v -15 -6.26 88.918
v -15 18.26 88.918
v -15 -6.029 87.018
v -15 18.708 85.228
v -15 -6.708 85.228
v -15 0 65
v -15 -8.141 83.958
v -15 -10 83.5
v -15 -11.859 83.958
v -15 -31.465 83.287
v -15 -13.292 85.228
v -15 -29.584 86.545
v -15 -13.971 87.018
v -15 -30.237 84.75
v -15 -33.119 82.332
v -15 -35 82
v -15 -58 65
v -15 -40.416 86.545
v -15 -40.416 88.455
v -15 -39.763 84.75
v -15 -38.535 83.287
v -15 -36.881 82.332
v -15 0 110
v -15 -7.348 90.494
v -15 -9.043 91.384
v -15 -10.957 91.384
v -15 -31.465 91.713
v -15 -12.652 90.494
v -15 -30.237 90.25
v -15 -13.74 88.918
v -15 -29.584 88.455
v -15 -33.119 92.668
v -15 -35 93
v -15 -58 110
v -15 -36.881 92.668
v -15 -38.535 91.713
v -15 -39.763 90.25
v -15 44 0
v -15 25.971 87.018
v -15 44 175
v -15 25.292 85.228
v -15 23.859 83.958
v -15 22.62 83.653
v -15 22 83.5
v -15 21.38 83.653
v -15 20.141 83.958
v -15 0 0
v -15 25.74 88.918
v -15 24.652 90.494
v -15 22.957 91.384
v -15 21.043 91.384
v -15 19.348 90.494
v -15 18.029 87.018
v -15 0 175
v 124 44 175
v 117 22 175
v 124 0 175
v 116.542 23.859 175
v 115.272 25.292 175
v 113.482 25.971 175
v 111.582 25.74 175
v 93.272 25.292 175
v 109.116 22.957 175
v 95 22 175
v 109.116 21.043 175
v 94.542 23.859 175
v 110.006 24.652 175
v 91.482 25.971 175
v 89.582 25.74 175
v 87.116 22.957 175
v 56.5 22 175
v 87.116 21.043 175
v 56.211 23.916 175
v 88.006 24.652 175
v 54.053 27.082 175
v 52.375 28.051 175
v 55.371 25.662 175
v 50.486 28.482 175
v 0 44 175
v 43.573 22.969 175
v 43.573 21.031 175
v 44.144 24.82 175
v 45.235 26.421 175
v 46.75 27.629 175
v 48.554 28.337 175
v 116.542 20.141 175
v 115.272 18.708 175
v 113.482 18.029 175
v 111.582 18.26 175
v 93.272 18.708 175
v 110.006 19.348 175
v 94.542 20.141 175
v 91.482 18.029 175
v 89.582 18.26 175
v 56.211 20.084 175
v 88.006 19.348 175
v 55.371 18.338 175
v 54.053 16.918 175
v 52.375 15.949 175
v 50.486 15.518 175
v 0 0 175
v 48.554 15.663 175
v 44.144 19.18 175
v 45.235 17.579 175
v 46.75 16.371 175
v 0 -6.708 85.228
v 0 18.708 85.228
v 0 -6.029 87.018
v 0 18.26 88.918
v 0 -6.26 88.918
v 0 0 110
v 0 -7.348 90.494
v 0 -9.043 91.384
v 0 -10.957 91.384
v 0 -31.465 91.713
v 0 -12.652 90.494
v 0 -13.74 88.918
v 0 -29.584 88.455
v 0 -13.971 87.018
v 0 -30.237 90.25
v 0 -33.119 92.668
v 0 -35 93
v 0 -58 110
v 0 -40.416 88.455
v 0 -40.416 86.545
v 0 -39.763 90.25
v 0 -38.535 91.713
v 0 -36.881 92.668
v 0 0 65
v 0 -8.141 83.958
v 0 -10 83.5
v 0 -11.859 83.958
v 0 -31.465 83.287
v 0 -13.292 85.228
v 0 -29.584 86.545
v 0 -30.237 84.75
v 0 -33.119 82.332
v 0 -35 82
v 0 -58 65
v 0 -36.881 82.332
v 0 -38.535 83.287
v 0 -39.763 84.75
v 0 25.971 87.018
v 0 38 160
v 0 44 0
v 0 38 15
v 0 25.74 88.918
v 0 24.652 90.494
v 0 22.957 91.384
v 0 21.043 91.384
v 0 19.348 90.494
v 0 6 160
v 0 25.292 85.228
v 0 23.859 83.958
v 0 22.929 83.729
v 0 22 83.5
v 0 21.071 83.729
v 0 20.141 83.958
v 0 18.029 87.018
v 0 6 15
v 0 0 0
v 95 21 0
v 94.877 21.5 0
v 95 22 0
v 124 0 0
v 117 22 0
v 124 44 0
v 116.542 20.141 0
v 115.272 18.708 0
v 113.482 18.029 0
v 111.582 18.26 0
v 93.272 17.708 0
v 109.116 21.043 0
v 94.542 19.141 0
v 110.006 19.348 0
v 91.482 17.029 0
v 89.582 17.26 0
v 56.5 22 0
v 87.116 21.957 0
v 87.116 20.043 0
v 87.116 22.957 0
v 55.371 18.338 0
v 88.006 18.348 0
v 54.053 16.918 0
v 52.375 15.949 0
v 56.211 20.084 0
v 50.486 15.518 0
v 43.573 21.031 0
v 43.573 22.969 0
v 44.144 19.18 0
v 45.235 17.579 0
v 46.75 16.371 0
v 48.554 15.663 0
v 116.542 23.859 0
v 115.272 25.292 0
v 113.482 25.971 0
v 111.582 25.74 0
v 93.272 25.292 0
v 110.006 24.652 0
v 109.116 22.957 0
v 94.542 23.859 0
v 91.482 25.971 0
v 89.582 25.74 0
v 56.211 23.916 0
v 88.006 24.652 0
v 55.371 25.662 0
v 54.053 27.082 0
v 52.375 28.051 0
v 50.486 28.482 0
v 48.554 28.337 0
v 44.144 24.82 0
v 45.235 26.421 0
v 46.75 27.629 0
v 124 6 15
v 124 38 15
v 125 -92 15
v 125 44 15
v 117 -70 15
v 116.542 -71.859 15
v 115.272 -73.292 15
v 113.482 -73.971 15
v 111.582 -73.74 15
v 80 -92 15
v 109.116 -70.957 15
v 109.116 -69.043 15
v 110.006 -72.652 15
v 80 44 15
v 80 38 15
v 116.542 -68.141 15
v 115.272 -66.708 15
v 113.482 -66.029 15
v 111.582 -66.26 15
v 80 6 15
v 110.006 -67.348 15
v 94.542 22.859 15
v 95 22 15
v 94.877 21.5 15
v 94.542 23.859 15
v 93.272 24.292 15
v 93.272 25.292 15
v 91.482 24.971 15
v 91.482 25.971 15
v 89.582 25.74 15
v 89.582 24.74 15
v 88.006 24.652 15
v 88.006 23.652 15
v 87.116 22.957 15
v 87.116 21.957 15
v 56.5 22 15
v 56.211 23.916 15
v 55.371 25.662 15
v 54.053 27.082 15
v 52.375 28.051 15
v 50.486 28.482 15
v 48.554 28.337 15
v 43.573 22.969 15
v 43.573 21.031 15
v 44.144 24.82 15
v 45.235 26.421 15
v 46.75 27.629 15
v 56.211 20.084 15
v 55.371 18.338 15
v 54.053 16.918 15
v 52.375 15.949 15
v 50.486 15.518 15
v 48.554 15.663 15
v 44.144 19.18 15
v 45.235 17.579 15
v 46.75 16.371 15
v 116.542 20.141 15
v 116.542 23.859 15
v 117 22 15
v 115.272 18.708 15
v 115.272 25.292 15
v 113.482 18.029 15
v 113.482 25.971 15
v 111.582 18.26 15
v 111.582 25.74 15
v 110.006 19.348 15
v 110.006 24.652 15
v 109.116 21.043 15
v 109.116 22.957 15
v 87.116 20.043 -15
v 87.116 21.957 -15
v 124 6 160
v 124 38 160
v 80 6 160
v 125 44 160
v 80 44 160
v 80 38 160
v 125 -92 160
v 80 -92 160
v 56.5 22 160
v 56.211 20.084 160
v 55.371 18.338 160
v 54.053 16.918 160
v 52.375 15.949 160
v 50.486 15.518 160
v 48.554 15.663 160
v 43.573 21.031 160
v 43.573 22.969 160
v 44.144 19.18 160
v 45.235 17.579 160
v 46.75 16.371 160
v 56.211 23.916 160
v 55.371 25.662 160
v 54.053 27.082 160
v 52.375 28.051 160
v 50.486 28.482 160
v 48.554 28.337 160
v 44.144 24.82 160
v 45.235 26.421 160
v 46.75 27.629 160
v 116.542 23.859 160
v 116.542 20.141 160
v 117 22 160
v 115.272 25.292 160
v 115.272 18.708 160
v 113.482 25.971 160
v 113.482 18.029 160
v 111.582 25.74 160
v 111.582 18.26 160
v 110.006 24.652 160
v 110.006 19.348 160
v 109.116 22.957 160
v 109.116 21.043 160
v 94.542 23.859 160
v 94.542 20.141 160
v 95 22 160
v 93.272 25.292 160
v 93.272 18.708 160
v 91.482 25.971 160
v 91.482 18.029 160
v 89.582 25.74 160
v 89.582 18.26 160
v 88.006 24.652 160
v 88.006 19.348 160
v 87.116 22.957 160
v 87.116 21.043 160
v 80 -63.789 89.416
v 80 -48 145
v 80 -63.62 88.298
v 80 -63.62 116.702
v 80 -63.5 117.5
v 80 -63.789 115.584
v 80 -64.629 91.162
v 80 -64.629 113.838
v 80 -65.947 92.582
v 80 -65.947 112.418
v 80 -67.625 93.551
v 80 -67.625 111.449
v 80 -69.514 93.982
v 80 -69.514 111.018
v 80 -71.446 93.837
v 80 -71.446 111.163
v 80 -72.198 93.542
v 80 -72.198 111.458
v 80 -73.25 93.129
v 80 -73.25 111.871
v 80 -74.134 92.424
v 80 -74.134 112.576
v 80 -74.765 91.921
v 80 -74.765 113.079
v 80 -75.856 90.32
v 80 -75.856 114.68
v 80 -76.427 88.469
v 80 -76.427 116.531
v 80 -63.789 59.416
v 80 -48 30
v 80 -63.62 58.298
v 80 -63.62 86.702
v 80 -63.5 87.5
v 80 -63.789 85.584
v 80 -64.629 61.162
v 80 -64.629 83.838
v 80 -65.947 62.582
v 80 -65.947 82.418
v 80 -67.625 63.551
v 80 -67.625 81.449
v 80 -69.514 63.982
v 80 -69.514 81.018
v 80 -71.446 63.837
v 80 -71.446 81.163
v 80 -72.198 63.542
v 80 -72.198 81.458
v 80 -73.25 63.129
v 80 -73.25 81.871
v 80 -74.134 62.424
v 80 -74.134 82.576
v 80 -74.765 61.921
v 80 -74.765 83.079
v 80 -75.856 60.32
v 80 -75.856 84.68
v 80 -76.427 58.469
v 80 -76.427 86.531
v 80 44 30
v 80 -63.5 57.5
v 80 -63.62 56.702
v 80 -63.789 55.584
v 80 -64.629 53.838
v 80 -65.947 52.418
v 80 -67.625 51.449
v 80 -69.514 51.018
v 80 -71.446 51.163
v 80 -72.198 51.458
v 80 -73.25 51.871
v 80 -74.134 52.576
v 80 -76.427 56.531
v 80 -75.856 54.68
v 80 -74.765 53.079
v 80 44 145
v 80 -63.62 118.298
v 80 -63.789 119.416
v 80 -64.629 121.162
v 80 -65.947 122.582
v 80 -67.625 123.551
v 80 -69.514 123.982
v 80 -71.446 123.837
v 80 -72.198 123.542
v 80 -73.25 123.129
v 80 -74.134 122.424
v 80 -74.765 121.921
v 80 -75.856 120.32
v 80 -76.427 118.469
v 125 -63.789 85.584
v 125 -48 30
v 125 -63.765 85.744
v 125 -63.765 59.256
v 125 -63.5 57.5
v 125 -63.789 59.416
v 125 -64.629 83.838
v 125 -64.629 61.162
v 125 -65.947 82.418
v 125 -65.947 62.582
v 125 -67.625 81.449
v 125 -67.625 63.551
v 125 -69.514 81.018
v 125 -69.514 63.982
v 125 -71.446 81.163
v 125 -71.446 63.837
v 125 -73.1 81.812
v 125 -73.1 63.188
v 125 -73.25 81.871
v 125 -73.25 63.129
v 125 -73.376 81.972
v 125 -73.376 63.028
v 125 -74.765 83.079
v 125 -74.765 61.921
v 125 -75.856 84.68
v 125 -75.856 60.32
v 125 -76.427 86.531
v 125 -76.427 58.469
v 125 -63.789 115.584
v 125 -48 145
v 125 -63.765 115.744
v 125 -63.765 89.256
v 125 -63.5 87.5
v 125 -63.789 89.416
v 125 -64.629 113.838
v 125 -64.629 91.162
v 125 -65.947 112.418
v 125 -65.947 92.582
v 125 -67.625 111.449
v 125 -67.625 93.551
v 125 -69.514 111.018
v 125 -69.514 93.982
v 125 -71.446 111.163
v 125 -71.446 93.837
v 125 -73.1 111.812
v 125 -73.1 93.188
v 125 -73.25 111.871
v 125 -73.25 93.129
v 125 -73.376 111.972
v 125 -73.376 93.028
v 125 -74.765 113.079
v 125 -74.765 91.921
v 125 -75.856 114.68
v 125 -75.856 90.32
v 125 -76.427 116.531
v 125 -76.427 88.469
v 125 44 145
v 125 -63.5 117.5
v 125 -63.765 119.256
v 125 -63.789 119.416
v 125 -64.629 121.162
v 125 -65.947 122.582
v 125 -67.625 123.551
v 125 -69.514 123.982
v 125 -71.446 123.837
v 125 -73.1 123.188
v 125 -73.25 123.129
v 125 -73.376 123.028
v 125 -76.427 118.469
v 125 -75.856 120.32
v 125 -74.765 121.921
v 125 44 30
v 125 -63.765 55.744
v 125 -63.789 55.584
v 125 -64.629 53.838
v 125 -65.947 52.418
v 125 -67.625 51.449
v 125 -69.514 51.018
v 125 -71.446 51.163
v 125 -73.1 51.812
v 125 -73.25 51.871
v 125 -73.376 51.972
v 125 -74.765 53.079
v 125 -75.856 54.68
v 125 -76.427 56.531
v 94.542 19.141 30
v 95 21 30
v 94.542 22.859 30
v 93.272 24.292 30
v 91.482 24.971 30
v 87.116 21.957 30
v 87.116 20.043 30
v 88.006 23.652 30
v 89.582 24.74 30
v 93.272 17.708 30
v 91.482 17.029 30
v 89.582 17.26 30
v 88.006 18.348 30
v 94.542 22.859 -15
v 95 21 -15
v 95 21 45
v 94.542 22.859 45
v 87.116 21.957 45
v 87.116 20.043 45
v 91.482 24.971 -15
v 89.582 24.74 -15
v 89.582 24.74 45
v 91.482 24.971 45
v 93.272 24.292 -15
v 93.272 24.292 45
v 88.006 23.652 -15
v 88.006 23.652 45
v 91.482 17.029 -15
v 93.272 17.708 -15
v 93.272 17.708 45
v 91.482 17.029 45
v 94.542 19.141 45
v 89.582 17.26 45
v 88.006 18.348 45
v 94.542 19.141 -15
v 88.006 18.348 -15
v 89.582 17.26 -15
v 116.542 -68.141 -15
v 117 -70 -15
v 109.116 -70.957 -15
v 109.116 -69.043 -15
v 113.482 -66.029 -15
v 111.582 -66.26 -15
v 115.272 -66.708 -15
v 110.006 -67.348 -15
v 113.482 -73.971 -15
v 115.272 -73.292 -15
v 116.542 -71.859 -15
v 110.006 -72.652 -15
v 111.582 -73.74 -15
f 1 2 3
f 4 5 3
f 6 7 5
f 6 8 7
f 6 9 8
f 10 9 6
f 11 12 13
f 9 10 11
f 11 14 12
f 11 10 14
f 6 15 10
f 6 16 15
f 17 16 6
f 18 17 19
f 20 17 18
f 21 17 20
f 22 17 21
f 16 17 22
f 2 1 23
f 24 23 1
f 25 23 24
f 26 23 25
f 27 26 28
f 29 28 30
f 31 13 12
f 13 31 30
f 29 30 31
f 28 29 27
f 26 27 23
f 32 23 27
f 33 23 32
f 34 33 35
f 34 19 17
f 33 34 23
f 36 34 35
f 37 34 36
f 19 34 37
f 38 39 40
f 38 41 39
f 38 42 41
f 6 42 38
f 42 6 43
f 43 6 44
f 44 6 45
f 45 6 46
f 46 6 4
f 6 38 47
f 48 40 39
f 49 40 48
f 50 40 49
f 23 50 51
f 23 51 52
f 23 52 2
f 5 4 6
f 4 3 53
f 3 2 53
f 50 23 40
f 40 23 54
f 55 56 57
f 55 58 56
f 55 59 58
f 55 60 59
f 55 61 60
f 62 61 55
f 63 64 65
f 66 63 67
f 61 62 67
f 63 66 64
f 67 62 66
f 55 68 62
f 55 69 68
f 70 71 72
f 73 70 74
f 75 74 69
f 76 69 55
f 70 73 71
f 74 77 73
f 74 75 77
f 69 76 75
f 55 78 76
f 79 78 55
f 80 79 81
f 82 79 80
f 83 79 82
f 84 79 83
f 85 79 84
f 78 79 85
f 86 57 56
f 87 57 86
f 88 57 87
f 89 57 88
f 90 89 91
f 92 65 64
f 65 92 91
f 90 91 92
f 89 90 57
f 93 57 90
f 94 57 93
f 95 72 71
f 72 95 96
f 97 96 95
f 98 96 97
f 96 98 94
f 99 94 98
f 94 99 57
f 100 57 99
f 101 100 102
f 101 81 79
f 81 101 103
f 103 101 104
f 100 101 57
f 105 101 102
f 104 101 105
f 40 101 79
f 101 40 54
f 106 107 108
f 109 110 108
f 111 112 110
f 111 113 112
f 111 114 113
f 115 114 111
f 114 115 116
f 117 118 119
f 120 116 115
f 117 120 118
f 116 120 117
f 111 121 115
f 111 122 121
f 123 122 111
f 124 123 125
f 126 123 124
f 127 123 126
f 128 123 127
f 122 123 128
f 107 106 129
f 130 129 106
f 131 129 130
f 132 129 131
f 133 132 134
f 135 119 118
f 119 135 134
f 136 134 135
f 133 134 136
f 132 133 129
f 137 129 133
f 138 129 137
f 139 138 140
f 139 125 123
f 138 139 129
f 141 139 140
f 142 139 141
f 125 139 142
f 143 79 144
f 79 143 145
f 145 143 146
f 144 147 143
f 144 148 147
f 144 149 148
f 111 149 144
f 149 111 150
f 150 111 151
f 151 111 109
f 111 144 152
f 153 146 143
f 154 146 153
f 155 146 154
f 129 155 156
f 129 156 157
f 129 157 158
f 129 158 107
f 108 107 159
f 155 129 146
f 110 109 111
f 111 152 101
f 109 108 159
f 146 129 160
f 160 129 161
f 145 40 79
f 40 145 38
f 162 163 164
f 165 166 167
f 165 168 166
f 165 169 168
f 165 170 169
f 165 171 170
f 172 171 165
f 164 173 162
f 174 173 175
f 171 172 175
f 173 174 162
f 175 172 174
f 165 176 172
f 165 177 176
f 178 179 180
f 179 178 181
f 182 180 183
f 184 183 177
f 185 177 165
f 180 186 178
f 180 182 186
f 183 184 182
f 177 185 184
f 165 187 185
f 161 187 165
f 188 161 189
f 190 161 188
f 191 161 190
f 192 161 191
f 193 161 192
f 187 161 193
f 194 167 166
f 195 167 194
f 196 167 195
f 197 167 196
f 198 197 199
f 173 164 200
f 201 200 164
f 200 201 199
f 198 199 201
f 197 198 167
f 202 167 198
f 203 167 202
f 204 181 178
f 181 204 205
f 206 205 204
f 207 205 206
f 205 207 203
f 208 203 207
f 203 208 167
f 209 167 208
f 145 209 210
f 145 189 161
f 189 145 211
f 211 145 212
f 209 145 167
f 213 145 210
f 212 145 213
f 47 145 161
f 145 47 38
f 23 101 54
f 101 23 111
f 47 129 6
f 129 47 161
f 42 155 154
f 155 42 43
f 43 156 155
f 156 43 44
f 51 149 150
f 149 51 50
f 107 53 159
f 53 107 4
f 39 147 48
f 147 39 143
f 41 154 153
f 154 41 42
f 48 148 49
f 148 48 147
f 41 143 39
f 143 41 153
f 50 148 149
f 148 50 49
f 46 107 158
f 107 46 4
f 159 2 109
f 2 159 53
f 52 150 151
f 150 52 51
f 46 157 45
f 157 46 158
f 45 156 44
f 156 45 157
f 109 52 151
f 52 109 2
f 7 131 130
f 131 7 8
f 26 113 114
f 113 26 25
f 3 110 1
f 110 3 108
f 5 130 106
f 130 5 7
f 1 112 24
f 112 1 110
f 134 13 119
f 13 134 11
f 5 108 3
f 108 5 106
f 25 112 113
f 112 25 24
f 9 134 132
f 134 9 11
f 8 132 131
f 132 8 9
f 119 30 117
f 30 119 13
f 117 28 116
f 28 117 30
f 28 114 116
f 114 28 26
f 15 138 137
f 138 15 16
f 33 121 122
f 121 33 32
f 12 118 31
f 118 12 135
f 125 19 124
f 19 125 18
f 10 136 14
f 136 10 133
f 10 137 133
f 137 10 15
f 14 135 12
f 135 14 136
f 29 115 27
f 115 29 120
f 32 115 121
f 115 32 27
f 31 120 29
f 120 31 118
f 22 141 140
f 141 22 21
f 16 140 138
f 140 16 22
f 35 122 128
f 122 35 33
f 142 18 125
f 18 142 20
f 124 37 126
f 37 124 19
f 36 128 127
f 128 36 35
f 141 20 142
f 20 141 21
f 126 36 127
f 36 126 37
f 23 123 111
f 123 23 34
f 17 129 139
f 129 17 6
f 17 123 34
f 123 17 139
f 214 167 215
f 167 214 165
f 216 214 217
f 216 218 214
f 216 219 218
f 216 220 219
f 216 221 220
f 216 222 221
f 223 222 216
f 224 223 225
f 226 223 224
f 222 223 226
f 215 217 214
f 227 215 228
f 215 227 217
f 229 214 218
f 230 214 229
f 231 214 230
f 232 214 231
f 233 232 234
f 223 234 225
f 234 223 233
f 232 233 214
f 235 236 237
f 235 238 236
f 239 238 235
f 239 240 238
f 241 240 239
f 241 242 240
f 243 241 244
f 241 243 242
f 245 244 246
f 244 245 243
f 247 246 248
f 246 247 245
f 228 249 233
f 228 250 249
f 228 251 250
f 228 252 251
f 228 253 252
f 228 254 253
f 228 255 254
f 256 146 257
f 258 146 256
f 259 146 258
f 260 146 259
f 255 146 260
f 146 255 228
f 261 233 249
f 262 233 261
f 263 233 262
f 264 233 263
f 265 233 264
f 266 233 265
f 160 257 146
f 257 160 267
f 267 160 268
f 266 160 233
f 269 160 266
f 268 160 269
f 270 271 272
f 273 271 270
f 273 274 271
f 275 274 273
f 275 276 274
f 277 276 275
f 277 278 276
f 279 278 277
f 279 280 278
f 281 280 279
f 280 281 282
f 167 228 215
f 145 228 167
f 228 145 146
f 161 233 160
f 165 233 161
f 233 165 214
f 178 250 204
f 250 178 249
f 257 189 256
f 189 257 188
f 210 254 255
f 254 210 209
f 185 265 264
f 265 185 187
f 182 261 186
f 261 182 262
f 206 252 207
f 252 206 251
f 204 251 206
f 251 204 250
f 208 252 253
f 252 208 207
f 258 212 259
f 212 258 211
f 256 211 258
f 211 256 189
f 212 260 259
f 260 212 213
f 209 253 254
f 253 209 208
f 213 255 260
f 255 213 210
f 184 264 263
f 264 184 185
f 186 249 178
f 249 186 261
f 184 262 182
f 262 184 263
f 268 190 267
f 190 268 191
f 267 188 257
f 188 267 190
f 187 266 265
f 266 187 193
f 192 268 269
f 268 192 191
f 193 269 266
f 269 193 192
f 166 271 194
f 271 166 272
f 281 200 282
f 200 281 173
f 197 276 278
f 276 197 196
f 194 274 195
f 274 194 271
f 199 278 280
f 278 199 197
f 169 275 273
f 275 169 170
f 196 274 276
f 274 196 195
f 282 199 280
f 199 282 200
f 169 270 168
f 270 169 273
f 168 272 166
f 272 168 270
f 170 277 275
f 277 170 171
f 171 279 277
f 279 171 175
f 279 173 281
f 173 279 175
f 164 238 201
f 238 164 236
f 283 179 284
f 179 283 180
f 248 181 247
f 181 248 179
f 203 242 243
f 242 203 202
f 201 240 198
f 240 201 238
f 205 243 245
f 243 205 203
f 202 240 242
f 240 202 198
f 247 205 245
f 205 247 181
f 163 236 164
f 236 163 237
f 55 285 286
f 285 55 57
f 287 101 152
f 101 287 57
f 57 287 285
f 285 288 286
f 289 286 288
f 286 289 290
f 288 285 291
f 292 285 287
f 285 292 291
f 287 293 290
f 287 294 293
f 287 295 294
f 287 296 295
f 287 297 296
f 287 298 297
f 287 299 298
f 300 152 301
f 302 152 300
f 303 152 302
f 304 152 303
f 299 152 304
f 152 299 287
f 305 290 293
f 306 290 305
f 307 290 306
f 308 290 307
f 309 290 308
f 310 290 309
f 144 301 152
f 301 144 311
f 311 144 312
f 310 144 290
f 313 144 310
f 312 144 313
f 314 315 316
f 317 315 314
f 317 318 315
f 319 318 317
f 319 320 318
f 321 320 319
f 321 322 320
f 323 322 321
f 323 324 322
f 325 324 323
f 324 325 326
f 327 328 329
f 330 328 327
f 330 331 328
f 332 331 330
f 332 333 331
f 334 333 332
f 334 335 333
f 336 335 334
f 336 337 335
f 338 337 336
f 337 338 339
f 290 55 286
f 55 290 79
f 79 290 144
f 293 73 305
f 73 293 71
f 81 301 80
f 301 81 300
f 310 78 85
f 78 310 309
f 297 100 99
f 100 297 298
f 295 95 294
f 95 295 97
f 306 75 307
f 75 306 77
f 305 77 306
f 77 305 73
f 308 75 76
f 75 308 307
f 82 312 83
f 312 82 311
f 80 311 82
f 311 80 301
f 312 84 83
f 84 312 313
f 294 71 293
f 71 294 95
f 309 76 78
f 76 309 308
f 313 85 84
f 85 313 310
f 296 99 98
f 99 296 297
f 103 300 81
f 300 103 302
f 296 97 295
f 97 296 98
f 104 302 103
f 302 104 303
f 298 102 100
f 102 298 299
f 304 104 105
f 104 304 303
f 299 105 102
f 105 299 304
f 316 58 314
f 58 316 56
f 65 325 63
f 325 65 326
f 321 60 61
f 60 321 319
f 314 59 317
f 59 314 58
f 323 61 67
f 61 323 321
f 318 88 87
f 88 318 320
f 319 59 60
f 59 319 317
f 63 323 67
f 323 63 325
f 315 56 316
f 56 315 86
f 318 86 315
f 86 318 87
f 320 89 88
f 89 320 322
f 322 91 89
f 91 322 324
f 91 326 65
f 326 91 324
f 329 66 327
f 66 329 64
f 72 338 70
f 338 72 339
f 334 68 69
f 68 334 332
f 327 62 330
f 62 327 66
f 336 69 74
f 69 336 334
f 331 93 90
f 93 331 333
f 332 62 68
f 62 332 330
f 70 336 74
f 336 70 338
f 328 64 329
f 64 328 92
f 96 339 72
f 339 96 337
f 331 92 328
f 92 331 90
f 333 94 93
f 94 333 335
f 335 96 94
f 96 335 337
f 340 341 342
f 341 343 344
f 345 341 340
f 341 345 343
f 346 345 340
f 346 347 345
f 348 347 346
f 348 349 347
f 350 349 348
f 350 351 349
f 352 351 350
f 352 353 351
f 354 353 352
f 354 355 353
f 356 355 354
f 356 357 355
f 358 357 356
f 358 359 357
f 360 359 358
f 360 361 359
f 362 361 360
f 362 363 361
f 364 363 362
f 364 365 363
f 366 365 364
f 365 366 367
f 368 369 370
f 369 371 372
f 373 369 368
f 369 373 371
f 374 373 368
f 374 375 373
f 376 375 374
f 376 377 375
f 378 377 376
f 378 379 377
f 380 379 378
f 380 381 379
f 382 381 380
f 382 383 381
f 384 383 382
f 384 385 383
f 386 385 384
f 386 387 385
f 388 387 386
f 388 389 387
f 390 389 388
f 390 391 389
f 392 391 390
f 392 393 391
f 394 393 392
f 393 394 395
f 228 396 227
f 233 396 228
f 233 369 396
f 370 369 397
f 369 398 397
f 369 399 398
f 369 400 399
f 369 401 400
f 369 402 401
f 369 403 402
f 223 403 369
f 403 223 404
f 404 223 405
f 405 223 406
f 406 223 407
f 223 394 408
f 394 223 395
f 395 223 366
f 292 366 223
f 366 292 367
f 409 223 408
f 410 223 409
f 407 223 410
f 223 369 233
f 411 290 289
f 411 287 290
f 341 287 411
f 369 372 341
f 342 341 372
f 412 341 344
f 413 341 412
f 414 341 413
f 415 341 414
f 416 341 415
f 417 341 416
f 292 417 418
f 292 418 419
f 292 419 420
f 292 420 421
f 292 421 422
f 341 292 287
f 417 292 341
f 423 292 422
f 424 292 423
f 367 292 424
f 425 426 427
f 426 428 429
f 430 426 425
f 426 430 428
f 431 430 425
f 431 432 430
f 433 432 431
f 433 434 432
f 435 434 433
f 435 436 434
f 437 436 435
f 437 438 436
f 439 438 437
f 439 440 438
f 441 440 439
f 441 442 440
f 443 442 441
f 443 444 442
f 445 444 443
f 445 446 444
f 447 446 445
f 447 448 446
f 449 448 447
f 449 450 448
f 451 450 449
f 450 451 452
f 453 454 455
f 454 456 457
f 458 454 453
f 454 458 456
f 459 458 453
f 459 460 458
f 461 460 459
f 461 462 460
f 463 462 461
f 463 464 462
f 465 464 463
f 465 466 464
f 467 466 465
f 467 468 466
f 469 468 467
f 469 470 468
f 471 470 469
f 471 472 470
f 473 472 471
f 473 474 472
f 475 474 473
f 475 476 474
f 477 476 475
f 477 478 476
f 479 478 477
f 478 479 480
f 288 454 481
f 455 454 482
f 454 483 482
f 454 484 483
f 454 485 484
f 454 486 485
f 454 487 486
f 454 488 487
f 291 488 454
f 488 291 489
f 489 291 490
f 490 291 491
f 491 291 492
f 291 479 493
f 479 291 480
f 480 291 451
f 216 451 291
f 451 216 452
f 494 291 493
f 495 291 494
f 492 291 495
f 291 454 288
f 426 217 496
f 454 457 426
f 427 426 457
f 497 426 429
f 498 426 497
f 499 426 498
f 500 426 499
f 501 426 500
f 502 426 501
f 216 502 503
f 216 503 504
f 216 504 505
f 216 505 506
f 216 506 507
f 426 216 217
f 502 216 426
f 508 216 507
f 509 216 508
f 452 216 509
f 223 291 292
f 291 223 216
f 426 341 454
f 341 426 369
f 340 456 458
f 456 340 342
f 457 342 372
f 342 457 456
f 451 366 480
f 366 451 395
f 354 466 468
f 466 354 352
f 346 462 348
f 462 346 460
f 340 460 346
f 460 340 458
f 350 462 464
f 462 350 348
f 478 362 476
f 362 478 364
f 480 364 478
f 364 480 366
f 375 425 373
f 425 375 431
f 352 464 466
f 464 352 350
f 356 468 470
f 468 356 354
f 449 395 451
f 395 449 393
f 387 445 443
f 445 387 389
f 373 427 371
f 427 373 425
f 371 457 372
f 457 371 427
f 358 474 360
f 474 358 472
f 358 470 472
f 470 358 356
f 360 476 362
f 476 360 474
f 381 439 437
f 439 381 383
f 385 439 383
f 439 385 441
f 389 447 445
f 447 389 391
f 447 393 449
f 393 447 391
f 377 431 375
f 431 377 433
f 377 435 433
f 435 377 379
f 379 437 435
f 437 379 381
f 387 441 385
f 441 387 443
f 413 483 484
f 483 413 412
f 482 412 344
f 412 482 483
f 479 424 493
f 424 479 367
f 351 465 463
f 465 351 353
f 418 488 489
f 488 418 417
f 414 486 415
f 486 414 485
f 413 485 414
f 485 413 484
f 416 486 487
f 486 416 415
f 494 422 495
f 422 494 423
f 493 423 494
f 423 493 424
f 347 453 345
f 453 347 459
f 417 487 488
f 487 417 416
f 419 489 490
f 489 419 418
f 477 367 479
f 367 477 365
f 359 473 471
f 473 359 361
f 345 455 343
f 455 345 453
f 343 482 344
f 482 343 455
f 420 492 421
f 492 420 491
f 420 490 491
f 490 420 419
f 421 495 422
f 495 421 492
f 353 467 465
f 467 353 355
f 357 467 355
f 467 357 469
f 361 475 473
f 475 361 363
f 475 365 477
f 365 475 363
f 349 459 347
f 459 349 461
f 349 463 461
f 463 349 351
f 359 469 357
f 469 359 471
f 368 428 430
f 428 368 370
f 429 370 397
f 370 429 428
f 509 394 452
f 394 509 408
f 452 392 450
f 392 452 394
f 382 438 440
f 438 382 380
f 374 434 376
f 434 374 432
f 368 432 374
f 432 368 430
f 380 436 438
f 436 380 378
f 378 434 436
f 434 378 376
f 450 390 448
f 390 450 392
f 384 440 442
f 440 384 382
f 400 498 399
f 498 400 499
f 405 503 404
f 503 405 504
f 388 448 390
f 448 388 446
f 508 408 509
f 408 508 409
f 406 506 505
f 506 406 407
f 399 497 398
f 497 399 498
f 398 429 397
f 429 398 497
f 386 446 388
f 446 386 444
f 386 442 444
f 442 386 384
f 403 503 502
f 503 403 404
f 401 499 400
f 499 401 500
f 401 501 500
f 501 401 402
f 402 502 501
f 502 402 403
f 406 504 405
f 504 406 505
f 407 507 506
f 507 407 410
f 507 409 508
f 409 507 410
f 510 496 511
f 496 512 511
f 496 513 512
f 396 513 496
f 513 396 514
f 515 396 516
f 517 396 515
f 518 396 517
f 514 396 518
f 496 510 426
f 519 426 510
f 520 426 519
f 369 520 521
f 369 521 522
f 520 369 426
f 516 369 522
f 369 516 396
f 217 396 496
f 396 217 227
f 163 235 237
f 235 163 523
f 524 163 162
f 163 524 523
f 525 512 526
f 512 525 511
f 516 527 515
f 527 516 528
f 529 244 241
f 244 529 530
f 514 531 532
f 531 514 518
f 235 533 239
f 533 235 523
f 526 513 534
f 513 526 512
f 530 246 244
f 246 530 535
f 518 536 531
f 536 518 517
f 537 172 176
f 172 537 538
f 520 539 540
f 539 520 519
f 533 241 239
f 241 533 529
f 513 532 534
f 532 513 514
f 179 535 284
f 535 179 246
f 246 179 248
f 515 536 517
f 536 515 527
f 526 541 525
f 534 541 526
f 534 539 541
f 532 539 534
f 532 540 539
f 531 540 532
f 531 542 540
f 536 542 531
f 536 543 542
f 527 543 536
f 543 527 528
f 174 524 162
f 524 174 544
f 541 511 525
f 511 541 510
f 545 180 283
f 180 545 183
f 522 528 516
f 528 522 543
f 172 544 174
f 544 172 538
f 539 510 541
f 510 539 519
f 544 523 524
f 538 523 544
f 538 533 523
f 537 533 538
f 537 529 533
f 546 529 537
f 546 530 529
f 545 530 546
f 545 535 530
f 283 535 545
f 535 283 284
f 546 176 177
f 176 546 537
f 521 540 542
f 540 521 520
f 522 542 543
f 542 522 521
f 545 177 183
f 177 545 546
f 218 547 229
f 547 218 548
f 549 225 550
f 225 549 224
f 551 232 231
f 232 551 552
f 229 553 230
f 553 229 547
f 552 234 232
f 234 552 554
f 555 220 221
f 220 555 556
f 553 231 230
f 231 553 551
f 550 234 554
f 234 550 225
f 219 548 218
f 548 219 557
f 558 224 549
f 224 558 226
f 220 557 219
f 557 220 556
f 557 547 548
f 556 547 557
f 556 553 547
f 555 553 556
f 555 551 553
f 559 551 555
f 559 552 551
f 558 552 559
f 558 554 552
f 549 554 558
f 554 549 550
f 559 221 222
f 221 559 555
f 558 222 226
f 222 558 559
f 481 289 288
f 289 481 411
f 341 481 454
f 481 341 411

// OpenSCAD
//定义变量
dovetail_base=44;
dovetail_top=32;
dovetail_height=15;
dovetail_length=124;
dual_arms_gap=160;
 //望远镜底座：25毫米，3/8，1/4，1/4

Dovetail_CubePoints = [
  [  0,  0,  0 ],  //0
  [ dovetail_length,  0,  0 ],  //1
  [ dovetail_length,  dovetail_base,  0 ],  //2
  [  0,  dovetail_base,  0 ],  //3

  [  0,  (dovetail_base-dovetail_top)/2,  dovetail_height ],  //4
  [ dovetail_length,  (dovetail_base-dovetail_top)/2,  dovetail_height ],  //5
  [ dovetail_length,  dovetail_base-(dovetail_base-dovetail_top)/2,  dovetail_height ],  //6
  [  0,  dovetail_base-(dovetail_base-dovetail_top)/2,  dovetail_height ]]; //7
  
Dovetail_CubeFaces = [
  [0,1,2,3],  // bottom
  [4,5,1,0],  // front
  [7,6,5,4],  // top
  [5,6,2,1],  // right
  [6,7,3,2],  // back
  [7,4,0,3]]; // left
  




//U型框架区域

//置物平板
difference(){
translate([-15,0,0]){
 cube([dovetail_height,dovetail_base,dual_arms_gap+15]);
}

translate([0,dovetail_base/2,(dual_arms_gap+dovetail_height)/2]){
rotate([0,90,0]){
cylinder(dovetail_height*6,4,4,center=true);}
}
}

difference(){
translate([-dovetail_height,-80+dovetail_base/2,dual_arms_gap/2-dovetail_height]){cube([dovetail_height,80,45]);}
translate([0,dovetail_base/2,(dual_arms_gap+dovetail_height)/2]){rotate([0,90,0]){cylinder(dovetail_height*6,4,4,center=true);}}
rotate([0,90,0]){translate([-(dual_arms_gap+dovetail_height)/2,-10,-dovetail_height]){
cylinder(dovetail_height*6,4,4,center=true);
translate([0,-25,0]){cylinder(dovetail_height*6,5.5,5.5,center=true);}}}


}
difference(){
polyhedron( Dovetail_CubePoints, Dovetail_CubeFaces );
translate([50,dovetail_base/2,0]){
cylinder(dovetail_height*4,6.5,6.5,center=true);}

translate([dovetail_length-dovetail_base/4,dovetail_base/2 ,0]){
cylinder(dovetail_height*4,4,4,center=true);}

translate([dovetail_length-3*dovetail_base/4,dovetail_base/2 ,0]){
cylinder(dovetail_height*4,4,4,center=true);}
///////////////////////

 
}

translate([0,0,dual_arms_gap+dovetail_height]){
mirror([0,0,1]){
difference(){
polyhedron( Dovetail_CubePoints, Dovetail_CubeFaces );
translate([50,dovetail_base/2,0]){
cylinder(dovetail_height*4,6.5,6.5,center=true);
}
translate([dovetail_length-dovetail_base/4,dovetail_base/2 ,0]){
cylinder(dovetail_height*4,4,4,center=true);}

translate([dovetail_length-3*dovetail_base/4,dovetail_base/2 ,0]){
cylinder(dovetail_height*4,4,4,center=true);}
}
}
}


//底部重锤杆连接区

translate([ 80 ,-dovetail_base/2-70,dovetail_height]){
//横向平板
difference(){
cube([dovetail_height*3,dovetail_base,dual_arms_gap-dovetail_height]);
rotate([90,0,90]){
translate([dovetail_base/2,dual_arms_gap/2-dovetail_height/2 ,dovetail_height/2]){
cylinder(dovetail_height*6,6.5,6.5,center=true);}
}
rotate([90,0,90]){
translate([dovetail_base/2,dual_arms_gap/2-dovetail_height/2+30 ,dovetail_height/2]){
cylinder(dovetail_height*6,6.5,6.5,center=true);}
}
rotate([90,0,90]){
translate([dovetail_base/2,dual_arms_gap/2-dovetail_height/2-30 ,dovetail_height/2]){
cylinder(dovetail_height*6,6.5,6.5,center=true);}
}
}
 
////平板转接-正向右侧
translate([0,0,0]){
cube([dovetail_height*3,dovetail_base/2+70+dovetail_base,dovetail_height]);
}

//打孔
translate([ dovetail_base/4,80+3*dovetail_base/4  ,0]){
cylinder(dovetail_height*4,4,4,center=true);}
translate([ 3*dovetail_base/4,dovetail_base/2 ,0]){
cylinder(dovetail_height*4,4,4,center=true);}

//平板转接-正向左侧
translate([0,0,dual_arms_gap-dovetail_height*2]){
cube([dovetail_height*3,dovetail_base/2+70+dovetail_base,dovetail_height]);
}}
